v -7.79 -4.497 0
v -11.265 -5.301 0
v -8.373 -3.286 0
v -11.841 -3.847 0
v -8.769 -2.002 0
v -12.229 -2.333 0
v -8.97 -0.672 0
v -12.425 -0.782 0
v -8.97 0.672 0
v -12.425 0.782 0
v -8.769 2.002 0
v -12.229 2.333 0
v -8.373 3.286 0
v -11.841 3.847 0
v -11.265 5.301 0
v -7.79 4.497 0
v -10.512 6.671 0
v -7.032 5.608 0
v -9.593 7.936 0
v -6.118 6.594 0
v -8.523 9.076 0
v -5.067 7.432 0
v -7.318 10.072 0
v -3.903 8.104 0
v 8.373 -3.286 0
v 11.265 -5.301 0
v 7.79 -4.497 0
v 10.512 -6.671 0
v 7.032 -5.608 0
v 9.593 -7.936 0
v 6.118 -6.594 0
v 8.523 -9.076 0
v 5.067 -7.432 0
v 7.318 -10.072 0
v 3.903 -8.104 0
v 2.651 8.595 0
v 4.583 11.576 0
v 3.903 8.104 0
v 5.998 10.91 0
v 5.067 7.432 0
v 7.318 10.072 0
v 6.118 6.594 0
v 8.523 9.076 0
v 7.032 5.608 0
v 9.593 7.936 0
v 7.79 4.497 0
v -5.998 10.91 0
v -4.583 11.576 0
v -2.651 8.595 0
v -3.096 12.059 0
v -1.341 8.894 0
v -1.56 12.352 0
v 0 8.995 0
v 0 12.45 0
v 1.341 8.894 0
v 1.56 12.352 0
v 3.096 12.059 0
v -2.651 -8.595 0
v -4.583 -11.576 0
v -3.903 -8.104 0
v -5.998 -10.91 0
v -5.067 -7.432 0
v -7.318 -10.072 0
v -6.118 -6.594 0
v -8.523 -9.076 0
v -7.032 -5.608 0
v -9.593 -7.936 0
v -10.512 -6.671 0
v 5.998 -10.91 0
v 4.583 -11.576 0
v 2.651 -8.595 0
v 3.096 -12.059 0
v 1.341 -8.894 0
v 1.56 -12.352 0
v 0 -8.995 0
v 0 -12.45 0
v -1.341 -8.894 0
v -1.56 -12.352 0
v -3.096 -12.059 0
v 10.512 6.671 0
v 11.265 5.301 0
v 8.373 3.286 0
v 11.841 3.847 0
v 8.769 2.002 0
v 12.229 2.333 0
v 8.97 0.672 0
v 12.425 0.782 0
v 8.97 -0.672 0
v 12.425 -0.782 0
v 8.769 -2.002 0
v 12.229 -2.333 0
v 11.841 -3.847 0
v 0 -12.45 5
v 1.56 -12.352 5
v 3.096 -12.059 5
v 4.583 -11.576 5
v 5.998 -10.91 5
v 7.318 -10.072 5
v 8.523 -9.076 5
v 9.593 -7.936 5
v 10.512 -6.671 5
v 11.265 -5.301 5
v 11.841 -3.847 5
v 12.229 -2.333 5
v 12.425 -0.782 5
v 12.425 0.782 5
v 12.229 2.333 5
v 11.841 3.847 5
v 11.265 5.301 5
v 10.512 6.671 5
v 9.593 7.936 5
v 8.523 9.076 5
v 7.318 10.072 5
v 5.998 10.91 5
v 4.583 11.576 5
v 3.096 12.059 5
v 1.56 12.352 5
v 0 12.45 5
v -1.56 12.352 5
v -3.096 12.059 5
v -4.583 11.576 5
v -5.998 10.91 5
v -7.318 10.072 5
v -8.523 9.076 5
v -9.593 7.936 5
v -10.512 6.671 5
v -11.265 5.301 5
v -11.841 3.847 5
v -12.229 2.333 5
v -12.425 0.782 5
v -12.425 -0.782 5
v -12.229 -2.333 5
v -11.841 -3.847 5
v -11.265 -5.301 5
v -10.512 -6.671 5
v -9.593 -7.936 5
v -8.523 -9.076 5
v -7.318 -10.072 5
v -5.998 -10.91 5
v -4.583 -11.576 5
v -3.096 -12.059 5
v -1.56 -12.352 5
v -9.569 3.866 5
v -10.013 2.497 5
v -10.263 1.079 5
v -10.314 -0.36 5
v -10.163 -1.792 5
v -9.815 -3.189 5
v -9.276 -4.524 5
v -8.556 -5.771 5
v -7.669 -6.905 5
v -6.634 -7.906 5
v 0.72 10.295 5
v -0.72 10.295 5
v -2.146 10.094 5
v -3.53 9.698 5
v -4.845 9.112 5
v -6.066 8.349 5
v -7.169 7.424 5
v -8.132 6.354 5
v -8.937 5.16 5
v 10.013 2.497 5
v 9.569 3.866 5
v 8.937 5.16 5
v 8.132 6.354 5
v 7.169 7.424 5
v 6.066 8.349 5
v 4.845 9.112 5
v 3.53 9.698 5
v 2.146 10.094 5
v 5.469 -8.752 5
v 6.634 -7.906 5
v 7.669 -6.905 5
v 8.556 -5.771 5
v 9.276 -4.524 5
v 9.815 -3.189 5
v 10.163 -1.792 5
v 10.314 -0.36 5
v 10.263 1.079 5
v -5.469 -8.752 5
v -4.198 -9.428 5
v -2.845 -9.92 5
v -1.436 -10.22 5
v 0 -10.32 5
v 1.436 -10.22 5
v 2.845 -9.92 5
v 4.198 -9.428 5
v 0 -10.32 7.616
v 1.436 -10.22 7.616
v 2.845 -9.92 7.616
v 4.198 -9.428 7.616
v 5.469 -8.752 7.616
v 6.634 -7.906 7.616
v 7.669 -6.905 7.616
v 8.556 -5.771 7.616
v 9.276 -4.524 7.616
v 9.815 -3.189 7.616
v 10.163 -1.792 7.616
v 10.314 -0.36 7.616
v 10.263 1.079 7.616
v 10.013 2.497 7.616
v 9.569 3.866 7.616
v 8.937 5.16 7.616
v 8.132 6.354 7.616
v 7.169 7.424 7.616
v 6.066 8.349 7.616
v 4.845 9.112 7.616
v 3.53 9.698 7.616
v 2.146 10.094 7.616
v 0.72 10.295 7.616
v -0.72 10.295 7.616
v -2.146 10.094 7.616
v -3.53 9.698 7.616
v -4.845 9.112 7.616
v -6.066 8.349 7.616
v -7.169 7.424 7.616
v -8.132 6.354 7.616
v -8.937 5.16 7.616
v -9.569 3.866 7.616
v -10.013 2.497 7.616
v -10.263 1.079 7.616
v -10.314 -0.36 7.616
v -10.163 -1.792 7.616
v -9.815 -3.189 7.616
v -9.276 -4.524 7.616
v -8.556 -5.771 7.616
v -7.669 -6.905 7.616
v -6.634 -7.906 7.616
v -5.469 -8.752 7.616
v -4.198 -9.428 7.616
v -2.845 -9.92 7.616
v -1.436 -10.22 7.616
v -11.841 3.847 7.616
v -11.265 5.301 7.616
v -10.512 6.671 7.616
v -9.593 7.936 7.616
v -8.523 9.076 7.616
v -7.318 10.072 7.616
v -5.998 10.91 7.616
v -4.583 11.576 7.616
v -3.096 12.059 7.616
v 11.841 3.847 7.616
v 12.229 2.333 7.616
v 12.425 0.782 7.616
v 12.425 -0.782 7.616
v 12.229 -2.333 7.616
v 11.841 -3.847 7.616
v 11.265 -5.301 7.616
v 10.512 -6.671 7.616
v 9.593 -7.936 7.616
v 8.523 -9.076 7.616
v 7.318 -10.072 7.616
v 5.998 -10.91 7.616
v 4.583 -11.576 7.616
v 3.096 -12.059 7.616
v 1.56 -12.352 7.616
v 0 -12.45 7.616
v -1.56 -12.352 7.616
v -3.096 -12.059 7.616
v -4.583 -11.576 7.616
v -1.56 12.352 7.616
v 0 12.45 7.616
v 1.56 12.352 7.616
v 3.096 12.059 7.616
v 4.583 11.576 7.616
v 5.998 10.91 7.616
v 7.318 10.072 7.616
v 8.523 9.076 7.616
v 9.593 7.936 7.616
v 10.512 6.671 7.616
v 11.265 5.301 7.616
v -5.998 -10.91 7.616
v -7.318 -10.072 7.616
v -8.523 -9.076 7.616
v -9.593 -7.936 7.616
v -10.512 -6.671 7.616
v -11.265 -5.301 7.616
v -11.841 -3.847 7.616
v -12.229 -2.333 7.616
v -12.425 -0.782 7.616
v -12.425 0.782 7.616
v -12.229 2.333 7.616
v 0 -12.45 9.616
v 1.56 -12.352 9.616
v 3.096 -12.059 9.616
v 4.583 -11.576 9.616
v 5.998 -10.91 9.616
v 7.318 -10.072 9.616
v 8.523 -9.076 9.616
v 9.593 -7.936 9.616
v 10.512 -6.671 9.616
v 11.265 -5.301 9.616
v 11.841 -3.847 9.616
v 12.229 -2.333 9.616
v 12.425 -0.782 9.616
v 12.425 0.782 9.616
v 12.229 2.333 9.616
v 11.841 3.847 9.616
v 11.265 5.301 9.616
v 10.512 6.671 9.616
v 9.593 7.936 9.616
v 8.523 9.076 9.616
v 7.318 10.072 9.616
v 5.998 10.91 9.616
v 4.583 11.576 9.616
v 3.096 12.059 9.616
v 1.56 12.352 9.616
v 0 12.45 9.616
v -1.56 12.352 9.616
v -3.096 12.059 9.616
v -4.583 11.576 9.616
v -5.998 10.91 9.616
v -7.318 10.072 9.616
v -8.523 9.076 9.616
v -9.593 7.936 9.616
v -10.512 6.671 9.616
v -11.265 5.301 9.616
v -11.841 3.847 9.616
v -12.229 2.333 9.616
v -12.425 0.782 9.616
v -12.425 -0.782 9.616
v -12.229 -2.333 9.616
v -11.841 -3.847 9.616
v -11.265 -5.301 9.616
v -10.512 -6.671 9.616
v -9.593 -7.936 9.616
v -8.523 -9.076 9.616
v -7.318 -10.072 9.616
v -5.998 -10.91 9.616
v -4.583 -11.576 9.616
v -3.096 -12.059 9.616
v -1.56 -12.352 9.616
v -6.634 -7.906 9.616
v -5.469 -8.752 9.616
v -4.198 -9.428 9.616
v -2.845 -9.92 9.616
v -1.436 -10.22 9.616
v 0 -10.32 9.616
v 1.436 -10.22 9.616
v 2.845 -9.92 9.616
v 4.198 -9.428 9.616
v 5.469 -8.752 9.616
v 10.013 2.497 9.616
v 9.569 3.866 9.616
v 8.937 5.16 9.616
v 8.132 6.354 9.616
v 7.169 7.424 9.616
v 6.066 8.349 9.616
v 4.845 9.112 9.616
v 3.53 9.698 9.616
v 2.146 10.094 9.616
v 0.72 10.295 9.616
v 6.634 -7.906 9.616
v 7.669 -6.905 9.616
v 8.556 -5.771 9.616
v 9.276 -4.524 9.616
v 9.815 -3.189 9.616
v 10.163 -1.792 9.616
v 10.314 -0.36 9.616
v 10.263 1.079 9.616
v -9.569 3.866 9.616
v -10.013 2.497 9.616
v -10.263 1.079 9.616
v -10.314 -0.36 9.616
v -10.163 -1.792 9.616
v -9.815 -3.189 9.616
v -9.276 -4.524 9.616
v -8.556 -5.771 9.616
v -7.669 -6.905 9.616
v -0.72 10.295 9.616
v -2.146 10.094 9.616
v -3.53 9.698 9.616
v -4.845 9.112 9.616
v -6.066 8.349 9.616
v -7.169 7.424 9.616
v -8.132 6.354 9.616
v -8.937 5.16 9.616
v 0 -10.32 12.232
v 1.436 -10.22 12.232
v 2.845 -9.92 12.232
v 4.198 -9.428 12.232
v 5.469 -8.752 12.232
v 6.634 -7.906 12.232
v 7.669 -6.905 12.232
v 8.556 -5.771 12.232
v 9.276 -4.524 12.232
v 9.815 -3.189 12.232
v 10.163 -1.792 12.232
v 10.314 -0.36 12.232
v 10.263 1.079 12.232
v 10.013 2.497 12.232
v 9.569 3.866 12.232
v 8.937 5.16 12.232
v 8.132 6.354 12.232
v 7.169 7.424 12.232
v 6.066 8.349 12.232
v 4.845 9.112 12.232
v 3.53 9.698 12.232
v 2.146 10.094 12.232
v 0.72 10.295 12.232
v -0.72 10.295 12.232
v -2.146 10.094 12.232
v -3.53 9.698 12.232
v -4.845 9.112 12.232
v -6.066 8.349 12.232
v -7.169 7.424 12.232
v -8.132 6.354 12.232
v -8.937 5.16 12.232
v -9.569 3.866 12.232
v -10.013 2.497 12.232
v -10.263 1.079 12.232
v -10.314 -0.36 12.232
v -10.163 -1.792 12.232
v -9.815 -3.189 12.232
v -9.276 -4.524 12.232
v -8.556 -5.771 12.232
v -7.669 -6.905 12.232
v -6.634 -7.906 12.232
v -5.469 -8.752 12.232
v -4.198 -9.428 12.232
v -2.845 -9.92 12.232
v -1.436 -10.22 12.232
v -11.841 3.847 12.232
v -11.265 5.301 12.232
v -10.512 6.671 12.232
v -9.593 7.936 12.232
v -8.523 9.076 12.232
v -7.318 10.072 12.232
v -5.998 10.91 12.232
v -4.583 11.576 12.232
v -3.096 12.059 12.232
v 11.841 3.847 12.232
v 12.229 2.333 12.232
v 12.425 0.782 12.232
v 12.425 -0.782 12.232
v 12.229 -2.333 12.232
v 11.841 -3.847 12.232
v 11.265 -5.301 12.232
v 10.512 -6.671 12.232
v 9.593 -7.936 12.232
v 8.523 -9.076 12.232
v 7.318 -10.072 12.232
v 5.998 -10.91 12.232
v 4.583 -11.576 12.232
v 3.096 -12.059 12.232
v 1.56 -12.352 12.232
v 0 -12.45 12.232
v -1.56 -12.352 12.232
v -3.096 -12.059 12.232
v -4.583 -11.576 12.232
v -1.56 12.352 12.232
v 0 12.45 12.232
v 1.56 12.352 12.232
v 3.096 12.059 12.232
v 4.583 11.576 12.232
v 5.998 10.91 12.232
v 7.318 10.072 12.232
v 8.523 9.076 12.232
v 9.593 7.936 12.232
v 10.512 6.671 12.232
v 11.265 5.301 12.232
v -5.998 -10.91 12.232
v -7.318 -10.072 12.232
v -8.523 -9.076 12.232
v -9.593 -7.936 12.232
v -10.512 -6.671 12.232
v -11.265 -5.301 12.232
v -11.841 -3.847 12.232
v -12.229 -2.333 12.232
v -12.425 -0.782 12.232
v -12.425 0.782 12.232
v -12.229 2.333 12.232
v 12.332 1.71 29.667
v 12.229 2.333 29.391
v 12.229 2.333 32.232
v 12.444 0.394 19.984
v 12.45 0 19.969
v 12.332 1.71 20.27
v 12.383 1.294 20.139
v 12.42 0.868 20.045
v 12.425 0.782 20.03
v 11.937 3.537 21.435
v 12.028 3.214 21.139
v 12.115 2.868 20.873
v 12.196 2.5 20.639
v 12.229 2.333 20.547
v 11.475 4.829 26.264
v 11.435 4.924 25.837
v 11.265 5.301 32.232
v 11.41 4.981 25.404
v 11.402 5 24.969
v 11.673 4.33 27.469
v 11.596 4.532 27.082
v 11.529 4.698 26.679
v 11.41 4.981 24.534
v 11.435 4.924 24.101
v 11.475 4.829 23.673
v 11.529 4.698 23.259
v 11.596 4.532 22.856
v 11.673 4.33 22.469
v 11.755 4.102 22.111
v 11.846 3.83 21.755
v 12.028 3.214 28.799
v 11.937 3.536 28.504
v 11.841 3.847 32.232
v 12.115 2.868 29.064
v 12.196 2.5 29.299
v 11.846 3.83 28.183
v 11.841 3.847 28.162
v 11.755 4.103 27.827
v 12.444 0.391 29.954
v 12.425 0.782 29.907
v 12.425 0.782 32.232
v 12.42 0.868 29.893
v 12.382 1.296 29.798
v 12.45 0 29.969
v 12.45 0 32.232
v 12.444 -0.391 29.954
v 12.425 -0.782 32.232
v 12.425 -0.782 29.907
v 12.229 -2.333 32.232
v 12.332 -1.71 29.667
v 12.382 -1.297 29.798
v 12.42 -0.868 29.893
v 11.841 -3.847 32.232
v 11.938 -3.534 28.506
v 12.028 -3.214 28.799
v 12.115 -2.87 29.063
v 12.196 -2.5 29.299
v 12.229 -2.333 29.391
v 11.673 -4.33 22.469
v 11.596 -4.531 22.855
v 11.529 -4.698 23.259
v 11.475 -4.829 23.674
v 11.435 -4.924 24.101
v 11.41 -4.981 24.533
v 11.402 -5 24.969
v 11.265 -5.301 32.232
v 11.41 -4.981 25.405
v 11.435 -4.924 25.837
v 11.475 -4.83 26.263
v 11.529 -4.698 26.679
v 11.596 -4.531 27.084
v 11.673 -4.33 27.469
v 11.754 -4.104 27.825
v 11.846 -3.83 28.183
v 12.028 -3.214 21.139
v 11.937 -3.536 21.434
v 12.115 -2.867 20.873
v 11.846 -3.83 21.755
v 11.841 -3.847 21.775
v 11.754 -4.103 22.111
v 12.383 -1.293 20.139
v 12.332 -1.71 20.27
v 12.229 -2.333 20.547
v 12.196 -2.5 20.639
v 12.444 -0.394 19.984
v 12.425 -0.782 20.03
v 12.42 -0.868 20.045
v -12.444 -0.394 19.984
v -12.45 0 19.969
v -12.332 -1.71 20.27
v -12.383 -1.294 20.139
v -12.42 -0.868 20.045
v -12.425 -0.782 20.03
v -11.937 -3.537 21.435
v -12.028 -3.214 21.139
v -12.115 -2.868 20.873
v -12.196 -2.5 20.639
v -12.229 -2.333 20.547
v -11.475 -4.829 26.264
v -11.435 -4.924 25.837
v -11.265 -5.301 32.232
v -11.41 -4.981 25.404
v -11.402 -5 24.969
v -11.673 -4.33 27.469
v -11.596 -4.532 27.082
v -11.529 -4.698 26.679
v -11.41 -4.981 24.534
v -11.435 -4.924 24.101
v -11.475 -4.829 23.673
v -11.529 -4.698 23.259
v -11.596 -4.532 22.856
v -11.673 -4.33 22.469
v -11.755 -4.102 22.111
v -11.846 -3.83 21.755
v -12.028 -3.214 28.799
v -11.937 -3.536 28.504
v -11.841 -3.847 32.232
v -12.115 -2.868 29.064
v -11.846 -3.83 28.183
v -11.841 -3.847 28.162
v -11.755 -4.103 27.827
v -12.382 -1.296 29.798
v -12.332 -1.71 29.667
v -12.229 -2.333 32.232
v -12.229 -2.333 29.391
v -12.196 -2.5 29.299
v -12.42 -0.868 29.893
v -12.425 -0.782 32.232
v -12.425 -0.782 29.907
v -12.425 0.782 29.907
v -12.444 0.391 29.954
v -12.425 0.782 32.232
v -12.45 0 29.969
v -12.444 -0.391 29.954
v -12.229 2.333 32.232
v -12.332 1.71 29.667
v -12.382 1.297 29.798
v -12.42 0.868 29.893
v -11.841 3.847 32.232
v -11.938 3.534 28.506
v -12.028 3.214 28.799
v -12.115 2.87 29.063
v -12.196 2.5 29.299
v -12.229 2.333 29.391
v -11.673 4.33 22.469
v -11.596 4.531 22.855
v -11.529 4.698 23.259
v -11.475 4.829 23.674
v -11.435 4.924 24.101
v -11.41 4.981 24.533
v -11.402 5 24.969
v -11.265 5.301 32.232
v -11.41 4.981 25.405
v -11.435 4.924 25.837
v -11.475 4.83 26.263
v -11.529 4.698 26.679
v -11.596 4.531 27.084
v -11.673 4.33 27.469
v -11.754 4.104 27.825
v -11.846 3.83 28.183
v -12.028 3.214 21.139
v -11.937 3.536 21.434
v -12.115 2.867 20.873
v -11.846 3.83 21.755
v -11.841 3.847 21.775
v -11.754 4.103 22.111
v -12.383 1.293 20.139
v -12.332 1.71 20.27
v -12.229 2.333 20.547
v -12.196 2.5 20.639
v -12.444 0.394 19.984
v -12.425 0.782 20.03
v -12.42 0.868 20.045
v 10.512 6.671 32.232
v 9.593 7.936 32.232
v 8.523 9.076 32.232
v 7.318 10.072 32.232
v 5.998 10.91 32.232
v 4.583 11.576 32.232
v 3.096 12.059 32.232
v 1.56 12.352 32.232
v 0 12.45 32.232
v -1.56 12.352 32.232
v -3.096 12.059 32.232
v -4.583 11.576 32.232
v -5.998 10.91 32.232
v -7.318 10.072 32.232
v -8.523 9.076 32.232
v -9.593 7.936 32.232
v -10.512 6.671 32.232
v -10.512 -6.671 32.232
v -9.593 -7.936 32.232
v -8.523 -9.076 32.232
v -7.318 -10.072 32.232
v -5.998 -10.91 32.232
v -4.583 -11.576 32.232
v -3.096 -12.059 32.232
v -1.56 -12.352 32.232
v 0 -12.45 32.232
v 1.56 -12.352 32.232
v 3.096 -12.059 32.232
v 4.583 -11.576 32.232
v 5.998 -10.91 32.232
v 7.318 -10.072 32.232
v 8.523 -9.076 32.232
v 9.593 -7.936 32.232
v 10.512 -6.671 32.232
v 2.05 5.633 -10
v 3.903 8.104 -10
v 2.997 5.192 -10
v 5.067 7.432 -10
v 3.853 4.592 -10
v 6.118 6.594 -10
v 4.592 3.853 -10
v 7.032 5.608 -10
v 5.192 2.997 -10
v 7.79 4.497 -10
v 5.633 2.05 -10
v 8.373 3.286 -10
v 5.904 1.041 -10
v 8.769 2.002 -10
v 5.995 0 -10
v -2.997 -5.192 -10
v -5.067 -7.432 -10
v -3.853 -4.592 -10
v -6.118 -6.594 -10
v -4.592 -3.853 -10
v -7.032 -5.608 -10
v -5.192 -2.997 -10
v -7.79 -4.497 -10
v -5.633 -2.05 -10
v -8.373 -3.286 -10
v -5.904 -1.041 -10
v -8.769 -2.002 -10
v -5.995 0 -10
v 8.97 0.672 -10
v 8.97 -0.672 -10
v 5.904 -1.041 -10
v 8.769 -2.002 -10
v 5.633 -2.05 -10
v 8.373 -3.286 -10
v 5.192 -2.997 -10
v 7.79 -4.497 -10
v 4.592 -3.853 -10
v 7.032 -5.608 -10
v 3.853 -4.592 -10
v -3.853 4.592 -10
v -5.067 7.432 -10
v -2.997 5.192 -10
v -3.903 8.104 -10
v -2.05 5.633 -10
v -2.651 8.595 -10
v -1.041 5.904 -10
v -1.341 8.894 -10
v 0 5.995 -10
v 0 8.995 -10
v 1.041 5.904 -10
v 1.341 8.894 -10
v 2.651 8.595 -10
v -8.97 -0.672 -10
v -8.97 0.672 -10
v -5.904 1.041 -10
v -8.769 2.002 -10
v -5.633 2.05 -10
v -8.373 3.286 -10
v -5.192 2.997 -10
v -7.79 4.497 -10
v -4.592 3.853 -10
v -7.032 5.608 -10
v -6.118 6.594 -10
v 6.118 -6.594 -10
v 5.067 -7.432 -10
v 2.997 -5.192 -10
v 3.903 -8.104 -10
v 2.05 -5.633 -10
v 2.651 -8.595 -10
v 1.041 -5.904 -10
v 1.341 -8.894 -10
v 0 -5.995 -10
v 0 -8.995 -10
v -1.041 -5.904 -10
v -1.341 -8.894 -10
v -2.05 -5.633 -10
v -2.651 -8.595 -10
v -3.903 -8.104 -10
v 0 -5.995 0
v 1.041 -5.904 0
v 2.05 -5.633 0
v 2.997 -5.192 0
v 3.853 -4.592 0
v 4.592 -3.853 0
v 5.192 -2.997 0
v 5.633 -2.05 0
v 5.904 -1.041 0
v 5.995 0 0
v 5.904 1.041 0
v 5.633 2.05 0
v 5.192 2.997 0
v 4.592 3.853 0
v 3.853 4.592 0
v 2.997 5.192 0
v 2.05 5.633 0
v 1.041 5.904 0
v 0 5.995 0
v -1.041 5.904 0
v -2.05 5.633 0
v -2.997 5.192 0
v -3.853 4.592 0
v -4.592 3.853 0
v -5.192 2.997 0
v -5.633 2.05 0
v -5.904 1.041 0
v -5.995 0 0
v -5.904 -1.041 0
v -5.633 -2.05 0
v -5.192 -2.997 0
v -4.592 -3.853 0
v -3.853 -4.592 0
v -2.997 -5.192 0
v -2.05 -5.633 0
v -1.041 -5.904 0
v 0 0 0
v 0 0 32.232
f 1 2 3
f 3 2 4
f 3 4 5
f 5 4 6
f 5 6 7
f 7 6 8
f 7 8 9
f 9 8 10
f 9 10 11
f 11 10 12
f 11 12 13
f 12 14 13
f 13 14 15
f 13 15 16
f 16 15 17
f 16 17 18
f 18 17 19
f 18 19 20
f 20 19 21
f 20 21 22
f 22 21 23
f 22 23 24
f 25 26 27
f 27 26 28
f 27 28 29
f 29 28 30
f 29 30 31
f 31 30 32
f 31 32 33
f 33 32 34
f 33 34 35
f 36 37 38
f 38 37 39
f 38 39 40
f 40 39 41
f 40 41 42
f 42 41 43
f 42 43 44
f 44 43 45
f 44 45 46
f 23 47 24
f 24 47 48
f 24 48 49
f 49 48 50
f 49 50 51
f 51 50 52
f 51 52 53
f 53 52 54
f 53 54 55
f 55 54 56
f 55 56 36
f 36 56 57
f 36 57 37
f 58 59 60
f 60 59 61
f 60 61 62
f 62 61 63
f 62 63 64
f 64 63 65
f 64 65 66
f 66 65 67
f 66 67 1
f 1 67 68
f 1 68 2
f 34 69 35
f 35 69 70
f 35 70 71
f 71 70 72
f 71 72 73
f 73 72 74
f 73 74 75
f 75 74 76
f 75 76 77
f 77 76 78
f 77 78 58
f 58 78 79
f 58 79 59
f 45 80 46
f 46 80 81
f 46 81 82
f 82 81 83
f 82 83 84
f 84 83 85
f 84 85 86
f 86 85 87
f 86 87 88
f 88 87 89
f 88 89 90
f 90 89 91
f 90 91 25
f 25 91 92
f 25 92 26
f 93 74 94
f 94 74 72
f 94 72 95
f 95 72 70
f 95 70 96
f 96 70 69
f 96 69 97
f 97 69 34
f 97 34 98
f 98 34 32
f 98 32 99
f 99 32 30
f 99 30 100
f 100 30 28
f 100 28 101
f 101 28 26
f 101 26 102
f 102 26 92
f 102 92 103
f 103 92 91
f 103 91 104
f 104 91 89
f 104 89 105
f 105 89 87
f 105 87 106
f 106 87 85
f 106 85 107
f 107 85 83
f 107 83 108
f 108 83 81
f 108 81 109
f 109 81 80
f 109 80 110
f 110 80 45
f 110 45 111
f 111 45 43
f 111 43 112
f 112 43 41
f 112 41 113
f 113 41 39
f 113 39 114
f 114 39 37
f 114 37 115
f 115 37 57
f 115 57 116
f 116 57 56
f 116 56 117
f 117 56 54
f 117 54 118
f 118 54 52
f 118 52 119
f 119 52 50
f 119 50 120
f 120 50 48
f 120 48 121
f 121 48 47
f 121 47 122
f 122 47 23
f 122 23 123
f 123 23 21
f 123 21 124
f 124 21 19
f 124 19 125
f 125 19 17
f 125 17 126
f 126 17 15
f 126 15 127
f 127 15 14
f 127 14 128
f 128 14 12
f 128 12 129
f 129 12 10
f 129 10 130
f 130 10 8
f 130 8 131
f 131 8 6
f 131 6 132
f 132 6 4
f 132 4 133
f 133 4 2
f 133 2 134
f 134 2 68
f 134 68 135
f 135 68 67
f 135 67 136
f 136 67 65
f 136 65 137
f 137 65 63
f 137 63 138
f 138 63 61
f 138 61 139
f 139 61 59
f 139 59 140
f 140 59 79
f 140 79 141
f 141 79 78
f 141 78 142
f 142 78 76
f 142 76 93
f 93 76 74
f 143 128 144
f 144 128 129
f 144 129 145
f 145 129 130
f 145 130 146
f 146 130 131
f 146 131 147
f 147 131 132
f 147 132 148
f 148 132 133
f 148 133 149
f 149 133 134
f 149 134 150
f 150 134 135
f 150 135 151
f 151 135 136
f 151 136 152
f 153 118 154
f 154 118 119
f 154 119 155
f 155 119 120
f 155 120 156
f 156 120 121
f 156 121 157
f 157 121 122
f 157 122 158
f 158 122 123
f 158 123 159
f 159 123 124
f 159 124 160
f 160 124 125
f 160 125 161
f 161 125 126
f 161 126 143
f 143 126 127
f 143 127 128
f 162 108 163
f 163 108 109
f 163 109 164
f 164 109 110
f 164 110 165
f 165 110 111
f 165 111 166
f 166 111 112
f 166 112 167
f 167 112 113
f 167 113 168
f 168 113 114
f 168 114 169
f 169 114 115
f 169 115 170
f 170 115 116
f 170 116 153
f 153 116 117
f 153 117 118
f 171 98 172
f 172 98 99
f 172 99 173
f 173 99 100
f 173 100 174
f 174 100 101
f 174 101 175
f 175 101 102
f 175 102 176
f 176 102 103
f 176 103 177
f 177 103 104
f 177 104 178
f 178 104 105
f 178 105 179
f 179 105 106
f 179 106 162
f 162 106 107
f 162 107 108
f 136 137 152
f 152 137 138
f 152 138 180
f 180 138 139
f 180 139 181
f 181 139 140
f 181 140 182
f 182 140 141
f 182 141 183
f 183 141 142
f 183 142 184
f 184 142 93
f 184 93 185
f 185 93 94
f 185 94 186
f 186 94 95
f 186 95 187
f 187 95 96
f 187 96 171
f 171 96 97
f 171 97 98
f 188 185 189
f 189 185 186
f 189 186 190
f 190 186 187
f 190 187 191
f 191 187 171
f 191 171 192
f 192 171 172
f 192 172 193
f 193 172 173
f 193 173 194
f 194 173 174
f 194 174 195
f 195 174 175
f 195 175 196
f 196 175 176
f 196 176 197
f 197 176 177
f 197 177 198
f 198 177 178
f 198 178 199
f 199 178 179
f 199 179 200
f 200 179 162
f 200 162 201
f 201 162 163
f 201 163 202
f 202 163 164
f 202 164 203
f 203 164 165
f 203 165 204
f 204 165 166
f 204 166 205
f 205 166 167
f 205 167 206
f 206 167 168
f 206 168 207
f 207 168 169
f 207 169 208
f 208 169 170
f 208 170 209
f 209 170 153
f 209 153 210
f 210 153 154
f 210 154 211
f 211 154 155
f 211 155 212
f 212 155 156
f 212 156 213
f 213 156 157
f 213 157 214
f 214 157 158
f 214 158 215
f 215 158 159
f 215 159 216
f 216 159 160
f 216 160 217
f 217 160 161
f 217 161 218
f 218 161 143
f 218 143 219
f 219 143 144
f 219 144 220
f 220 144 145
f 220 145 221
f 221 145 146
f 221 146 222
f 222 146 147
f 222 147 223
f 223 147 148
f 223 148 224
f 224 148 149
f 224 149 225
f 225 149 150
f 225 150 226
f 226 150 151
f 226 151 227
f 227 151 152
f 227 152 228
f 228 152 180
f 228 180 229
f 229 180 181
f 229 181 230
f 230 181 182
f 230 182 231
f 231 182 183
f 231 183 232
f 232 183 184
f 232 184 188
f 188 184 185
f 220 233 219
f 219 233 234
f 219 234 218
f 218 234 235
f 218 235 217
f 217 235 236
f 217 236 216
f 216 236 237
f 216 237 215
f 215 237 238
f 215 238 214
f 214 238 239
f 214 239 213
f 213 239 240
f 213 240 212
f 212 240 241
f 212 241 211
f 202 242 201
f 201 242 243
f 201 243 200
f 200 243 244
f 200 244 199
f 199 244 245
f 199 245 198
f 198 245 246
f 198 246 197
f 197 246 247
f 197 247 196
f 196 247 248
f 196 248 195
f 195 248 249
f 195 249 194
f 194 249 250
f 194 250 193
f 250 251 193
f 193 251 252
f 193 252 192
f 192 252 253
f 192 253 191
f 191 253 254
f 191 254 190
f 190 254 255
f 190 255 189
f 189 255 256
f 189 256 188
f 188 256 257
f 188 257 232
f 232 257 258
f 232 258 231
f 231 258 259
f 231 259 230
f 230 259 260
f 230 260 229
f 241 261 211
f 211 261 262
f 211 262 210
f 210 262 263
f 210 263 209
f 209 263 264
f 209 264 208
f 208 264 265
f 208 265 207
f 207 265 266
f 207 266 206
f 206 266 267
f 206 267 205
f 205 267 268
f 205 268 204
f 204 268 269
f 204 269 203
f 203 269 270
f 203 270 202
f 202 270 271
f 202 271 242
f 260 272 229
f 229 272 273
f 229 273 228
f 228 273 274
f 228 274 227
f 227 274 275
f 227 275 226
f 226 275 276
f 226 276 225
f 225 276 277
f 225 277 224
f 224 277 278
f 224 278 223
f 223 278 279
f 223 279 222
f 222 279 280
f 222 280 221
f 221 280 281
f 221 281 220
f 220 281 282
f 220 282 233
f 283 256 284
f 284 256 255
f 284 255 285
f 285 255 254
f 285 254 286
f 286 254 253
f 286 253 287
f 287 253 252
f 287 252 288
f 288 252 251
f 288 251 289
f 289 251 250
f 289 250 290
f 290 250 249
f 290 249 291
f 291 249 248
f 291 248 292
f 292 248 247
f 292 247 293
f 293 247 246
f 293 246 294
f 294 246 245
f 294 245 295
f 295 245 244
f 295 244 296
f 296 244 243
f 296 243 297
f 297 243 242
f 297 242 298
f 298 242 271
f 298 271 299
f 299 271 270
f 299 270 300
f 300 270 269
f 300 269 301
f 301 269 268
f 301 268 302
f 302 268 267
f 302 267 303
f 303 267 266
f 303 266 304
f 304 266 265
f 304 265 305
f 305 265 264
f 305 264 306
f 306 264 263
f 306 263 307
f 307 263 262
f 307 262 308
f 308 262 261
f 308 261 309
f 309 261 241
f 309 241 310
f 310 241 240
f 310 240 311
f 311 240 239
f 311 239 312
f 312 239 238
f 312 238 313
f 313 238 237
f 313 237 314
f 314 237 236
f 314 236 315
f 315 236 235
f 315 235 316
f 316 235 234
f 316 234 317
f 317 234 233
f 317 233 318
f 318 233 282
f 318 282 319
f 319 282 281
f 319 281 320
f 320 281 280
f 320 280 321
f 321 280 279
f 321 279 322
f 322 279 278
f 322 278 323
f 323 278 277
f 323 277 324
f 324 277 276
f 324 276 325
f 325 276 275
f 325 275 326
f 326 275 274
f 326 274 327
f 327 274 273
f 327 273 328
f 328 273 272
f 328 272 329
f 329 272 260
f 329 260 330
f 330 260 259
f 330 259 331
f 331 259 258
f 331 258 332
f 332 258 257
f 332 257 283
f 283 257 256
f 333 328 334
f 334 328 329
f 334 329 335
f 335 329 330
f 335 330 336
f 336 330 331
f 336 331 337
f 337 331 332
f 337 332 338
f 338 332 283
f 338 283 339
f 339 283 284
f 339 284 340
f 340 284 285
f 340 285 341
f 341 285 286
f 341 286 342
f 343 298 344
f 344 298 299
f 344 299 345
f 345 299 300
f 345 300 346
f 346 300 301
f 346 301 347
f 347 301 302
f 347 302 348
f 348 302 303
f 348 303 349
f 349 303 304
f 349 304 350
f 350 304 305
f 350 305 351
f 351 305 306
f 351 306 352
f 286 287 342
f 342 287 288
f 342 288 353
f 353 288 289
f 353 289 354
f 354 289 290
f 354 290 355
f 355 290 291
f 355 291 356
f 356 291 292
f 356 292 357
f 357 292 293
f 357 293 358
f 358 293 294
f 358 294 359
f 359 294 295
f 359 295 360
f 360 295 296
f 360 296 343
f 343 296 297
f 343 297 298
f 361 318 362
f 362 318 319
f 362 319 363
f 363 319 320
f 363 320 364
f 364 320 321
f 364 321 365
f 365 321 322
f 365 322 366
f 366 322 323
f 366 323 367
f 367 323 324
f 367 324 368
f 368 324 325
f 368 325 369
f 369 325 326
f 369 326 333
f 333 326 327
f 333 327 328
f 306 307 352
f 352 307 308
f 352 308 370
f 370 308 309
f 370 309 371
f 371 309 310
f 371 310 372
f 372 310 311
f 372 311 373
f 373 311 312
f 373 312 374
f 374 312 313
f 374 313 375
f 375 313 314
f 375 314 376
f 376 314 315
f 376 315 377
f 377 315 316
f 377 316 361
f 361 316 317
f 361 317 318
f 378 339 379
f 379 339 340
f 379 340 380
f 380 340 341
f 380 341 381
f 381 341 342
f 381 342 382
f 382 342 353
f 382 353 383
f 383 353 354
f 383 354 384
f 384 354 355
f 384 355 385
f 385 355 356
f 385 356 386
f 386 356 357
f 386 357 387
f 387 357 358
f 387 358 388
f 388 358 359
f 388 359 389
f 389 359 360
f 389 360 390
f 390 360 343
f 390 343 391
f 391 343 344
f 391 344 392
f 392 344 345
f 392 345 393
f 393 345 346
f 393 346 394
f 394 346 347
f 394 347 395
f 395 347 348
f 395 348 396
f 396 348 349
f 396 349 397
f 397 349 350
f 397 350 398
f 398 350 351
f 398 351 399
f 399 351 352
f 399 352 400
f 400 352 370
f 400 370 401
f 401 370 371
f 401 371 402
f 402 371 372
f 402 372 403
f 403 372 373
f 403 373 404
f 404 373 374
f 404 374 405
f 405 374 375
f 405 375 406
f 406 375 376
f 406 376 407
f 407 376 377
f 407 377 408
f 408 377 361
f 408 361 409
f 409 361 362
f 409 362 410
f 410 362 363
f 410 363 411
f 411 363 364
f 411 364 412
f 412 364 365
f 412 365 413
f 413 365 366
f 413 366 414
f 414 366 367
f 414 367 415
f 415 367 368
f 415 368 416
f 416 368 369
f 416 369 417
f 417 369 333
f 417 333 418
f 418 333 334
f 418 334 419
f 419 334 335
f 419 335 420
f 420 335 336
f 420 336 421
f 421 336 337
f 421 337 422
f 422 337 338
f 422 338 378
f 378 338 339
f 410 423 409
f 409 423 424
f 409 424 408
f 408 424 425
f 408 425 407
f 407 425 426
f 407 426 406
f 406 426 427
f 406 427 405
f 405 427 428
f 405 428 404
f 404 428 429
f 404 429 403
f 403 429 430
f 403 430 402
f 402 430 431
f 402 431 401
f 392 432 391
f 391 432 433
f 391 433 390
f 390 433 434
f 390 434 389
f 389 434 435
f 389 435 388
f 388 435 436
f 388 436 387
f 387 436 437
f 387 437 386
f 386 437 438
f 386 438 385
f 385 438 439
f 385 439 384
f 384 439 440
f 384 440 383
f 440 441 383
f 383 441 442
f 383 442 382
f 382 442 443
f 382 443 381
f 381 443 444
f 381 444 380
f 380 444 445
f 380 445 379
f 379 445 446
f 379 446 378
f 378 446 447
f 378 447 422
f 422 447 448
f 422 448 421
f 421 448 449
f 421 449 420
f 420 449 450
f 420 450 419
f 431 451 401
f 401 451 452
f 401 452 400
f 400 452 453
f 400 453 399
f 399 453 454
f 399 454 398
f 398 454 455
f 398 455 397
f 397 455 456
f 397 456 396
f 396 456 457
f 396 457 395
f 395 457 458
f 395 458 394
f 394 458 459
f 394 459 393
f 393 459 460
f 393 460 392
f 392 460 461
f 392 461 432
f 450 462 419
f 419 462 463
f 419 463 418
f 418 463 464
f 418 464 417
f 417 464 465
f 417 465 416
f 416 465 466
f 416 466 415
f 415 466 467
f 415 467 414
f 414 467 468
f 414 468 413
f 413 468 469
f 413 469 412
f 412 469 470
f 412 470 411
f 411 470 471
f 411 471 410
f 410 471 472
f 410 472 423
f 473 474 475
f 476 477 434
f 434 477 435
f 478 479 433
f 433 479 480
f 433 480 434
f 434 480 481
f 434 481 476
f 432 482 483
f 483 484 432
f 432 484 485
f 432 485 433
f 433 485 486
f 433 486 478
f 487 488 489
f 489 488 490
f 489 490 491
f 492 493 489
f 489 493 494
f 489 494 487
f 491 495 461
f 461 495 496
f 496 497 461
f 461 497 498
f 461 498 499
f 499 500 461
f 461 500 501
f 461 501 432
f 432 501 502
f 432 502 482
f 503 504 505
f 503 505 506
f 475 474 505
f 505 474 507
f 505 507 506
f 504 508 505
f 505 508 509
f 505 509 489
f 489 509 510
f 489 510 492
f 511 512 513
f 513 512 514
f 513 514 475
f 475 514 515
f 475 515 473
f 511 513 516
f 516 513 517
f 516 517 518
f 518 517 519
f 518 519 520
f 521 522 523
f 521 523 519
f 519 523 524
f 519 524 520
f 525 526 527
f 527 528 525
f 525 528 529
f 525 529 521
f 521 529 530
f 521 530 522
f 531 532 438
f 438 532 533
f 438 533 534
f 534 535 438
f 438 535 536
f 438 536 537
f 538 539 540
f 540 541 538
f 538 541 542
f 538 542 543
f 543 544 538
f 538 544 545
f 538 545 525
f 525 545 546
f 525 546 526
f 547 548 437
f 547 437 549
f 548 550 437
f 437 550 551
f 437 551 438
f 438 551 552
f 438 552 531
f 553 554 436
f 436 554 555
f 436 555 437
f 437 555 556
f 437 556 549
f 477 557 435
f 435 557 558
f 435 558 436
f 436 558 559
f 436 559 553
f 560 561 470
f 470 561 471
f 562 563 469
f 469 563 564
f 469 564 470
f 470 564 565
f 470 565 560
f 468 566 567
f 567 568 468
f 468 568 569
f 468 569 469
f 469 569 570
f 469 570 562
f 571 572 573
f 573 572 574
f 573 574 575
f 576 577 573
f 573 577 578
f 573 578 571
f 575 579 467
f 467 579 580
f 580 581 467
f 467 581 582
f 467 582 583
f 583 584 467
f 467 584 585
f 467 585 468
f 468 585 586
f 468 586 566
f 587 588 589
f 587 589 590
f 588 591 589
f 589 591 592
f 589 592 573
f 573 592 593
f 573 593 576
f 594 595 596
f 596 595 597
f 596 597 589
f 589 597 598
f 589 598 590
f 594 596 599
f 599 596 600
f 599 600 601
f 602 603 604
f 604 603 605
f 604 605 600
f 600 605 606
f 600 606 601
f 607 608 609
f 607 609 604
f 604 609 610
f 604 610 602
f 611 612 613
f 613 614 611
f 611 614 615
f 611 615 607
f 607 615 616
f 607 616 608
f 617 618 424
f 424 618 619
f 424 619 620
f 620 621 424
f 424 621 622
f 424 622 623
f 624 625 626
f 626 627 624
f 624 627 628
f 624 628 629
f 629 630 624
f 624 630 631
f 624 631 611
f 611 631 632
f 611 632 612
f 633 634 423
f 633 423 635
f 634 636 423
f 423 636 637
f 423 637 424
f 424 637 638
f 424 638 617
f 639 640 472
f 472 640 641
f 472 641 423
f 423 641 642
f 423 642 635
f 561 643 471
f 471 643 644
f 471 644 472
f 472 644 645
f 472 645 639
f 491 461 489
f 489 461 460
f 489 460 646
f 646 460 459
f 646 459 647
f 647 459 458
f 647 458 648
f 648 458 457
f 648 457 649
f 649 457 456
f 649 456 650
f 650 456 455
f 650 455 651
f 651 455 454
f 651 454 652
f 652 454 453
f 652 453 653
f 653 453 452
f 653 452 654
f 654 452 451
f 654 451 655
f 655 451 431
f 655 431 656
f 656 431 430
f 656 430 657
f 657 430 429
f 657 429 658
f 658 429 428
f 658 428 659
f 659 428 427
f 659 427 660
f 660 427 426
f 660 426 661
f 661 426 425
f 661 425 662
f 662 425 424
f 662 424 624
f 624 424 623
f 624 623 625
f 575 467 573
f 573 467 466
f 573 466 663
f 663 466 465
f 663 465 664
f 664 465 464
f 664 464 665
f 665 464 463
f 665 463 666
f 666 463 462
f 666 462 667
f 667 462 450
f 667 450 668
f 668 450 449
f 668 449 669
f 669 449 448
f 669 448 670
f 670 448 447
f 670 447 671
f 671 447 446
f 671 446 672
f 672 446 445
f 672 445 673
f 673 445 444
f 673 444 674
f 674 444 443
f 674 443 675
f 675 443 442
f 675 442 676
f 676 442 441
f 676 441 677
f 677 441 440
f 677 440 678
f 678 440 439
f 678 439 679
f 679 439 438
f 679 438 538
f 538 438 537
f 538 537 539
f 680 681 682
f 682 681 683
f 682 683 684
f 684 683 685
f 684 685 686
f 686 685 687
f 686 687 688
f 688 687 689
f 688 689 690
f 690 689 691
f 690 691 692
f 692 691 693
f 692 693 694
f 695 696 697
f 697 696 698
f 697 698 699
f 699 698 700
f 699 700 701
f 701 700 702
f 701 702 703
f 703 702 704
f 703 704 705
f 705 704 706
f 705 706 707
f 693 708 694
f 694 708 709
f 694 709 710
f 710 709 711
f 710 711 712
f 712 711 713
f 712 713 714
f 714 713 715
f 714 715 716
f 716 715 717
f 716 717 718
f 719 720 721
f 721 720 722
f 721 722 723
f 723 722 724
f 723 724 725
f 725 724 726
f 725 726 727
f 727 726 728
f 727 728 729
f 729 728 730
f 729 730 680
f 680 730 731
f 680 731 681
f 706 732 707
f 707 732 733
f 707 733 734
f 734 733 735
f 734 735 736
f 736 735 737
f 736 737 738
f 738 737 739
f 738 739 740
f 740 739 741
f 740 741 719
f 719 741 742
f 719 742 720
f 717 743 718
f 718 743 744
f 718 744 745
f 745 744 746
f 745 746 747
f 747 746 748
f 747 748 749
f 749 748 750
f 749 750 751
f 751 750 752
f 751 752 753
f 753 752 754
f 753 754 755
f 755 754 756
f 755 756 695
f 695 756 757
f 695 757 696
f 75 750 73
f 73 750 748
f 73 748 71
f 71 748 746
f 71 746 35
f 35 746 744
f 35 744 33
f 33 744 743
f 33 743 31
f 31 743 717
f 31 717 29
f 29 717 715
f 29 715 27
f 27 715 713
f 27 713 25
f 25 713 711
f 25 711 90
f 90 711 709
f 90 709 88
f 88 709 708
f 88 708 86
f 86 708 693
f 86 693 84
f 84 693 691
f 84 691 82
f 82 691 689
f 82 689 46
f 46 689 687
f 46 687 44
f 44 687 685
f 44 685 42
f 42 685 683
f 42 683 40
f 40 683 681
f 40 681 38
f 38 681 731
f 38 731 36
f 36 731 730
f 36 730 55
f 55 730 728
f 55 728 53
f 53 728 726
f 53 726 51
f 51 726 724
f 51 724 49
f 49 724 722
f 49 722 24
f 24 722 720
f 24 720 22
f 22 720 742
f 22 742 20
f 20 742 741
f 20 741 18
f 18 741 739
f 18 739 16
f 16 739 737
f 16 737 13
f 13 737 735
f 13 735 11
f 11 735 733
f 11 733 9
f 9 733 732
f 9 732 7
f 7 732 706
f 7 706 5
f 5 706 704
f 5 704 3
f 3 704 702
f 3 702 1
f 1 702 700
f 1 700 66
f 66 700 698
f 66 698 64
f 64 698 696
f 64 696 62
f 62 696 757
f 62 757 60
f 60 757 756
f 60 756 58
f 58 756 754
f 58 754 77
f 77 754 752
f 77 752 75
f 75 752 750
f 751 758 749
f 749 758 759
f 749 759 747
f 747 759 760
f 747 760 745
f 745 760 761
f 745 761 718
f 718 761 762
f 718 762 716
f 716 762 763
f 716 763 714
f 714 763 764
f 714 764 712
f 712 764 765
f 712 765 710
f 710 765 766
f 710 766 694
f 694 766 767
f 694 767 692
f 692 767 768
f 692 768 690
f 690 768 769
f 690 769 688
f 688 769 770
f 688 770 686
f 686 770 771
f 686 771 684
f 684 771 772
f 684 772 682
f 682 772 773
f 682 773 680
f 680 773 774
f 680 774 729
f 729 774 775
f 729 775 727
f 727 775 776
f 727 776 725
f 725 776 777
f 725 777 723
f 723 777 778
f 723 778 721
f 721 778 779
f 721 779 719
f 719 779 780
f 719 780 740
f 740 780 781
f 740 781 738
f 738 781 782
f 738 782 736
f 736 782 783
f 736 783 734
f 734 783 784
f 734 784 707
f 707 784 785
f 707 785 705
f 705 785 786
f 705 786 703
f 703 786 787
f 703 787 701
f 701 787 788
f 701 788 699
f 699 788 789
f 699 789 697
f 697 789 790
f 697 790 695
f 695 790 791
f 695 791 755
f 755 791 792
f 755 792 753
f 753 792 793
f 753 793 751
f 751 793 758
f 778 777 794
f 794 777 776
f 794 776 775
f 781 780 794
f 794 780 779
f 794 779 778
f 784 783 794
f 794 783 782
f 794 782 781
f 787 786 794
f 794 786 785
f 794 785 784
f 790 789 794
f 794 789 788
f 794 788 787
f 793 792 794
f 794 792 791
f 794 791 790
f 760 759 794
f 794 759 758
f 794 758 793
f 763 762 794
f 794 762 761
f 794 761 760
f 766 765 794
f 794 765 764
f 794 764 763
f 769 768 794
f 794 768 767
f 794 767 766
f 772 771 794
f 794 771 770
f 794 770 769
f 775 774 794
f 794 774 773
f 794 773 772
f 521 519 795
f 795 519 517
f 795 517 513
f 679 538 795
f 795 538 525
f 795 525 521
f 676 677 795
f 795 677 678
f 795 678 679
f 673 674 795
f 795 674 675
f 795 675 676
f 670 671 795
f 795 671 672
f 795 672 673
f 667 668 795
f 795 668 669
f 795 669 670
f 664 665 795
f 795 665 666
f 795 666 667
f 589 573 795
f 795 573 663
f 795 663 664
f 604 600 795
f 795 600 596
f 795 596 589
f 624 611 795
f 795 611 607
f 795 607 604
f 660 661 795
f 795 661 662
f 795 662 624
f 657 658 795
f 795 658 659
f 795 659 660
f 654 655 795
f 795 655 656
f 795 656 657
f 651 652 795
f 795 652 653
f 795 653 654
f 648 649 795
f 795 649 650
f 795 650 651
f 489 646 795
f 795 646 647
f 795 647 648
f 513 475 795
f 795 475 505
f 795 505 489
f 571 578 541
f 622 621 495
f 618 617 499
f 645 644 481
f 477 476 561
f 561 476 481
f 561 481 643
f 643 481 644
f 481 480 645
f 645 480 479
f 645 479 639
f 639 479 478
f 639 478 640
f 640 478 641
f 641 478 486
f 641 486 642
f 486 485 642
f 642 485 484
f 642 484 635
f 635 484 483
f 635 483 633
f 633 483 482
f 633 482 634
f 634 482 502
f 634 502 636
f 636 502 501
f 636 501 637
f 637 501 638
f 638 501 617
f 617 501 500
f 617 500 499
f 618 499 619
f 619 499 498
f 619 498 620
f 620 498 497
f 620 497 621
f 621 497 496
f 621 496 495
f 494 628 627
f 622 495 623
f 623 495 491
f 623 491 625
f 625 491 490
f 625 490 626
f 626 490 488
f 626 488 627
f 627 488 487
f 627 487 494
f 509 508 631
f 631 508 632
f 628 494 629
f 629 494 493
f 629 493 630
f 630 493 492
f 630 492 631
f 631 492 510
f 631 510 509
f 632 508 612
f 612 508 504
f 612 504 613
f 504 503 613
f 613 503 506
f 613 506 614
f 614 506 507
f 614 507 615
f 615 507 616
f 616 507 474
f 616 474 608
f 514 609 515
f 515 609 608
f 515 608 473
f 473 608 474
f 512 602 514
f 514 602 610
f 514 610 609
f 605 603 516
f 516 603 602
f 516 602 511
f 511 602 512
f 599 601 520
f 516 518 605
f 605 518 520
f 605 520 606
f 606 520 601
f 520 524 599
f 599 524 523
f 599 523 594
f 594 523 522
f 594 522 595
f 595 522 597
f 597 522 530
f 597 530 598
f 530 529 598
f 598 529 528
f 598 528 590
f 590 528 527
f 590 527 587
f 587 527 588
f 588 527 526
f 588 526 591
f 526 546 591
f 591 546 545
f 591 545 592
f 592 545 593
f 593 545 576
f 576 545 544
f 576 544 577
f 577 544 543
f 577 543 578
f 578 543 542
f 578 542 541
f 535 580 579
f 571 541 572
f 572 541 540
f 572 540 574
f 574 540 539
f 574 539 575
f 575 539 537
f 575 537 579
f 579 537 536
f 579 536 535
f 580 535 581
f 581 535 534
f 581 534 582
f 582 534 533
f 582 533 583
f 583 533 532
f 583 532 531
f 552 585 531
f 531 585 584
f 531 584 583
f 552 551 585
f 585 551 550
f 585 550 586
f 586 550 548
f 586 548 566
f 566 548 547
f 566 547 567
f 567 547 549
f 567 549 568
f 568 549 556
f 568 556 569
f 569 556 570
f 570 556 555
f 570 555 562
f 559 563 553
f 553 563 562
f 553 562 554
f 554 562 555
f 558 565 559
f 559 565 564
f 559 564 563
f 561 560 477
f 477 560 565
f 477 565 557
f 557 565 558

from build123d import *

# Parameters (mm, degrees)
SKETCH3_R               = 8.99487737
SKETCH3_R_2             = 5.99487737
BOSS_EXTRUDE4_DEPTH     = 10
BOSS_EXTRUDE5_START     = 15
SKETCH4_R               = 12.45
BOSS_EXTRUDE5_DEPTH     = 15
CUT_EXTRUDE1_DEPTH      = 37.727817928
CUT_EXTRUDE1_DEPTH_BACK = 37.727817928
SKETCH5_R               = 5


with BuildPart() as part:
    # Sketch2 → Revolve1 (revolve)
    with BuildSketch(Plane(origin=(0, 0, 0), x_dir=(0, 0, -1), z_dir=(1, 0, 0)), mode=Mode.PRIVATE) as revolve1_sk:
        Polygon((0, 0), (0, 12.45), (-5, 12.45), (-5, 10.32), (-7.6162, 10.32), (-7.6162, 12.45), (-9.6162, 12.45), (-9.6162, 10.32), (-12.2324, 10.32), (-12.2324, 12.45), (-17.2324, 12.45), (-17.2324, 0), align=None)
    revolve(revolve1_sk.sketch.rotate(Axis((0, 0, 17.2324), (0, 0, -1)), 180), axis=Axis((0, 0, 17.2324), (0, 0, -1)))

    # Sketch3 → Boss-Extrude4 (add)
    with BuildSketch(Plane(origin=(0, 0, 0), x_dir=(-1, 0, 0), z_dir=(0, 0, -1))):
        with Locations(Location((0, 0, 0), (0, 0, 270))):
            Circle(SKETCH3_R)
        with Locations(Location((0, 0, 0), (0, 0, 90))):
            Circle(SKETCH3_R_2, mode=Mode.SUBTRACT)
    extrude(amount=BOSS_EXTRUDE4_DEPTH)

    # Sketch4 → Boss-Extrude5 (add)
    with BuildSketch(Plane.XY.offset(17.2324).offset(BOSS_EXTRUDE5_START)):
        with Locations(Location((0, 0, 0), (0, 0, 270))):
            Circle(SKETCH4_R)
    extrude(amount=-BOSS_EXTRUDE5_DEPTH)

    # Sketch5 → Cut-Extrude1 (cut, two sides: drawn at the far end of the back side and taken through both)
    with BuildSketch(Plane(origin=(0, 0, 0), x_dir=(0, 0, -1), z_dir=(1, 0, 0)).offset(-CUT_EXTRUDE1_DEPTH_BACK)):
        with Locations((-24.968914218, 0)):
            Circle(SKETCH5_R)
    extrude(amount=CUT_EXTRUDE1_DEPTH + CUT_EXTRUDE1_DEPTH_BACK, mode=Mode.SUBTRACT)


solid = part.part
